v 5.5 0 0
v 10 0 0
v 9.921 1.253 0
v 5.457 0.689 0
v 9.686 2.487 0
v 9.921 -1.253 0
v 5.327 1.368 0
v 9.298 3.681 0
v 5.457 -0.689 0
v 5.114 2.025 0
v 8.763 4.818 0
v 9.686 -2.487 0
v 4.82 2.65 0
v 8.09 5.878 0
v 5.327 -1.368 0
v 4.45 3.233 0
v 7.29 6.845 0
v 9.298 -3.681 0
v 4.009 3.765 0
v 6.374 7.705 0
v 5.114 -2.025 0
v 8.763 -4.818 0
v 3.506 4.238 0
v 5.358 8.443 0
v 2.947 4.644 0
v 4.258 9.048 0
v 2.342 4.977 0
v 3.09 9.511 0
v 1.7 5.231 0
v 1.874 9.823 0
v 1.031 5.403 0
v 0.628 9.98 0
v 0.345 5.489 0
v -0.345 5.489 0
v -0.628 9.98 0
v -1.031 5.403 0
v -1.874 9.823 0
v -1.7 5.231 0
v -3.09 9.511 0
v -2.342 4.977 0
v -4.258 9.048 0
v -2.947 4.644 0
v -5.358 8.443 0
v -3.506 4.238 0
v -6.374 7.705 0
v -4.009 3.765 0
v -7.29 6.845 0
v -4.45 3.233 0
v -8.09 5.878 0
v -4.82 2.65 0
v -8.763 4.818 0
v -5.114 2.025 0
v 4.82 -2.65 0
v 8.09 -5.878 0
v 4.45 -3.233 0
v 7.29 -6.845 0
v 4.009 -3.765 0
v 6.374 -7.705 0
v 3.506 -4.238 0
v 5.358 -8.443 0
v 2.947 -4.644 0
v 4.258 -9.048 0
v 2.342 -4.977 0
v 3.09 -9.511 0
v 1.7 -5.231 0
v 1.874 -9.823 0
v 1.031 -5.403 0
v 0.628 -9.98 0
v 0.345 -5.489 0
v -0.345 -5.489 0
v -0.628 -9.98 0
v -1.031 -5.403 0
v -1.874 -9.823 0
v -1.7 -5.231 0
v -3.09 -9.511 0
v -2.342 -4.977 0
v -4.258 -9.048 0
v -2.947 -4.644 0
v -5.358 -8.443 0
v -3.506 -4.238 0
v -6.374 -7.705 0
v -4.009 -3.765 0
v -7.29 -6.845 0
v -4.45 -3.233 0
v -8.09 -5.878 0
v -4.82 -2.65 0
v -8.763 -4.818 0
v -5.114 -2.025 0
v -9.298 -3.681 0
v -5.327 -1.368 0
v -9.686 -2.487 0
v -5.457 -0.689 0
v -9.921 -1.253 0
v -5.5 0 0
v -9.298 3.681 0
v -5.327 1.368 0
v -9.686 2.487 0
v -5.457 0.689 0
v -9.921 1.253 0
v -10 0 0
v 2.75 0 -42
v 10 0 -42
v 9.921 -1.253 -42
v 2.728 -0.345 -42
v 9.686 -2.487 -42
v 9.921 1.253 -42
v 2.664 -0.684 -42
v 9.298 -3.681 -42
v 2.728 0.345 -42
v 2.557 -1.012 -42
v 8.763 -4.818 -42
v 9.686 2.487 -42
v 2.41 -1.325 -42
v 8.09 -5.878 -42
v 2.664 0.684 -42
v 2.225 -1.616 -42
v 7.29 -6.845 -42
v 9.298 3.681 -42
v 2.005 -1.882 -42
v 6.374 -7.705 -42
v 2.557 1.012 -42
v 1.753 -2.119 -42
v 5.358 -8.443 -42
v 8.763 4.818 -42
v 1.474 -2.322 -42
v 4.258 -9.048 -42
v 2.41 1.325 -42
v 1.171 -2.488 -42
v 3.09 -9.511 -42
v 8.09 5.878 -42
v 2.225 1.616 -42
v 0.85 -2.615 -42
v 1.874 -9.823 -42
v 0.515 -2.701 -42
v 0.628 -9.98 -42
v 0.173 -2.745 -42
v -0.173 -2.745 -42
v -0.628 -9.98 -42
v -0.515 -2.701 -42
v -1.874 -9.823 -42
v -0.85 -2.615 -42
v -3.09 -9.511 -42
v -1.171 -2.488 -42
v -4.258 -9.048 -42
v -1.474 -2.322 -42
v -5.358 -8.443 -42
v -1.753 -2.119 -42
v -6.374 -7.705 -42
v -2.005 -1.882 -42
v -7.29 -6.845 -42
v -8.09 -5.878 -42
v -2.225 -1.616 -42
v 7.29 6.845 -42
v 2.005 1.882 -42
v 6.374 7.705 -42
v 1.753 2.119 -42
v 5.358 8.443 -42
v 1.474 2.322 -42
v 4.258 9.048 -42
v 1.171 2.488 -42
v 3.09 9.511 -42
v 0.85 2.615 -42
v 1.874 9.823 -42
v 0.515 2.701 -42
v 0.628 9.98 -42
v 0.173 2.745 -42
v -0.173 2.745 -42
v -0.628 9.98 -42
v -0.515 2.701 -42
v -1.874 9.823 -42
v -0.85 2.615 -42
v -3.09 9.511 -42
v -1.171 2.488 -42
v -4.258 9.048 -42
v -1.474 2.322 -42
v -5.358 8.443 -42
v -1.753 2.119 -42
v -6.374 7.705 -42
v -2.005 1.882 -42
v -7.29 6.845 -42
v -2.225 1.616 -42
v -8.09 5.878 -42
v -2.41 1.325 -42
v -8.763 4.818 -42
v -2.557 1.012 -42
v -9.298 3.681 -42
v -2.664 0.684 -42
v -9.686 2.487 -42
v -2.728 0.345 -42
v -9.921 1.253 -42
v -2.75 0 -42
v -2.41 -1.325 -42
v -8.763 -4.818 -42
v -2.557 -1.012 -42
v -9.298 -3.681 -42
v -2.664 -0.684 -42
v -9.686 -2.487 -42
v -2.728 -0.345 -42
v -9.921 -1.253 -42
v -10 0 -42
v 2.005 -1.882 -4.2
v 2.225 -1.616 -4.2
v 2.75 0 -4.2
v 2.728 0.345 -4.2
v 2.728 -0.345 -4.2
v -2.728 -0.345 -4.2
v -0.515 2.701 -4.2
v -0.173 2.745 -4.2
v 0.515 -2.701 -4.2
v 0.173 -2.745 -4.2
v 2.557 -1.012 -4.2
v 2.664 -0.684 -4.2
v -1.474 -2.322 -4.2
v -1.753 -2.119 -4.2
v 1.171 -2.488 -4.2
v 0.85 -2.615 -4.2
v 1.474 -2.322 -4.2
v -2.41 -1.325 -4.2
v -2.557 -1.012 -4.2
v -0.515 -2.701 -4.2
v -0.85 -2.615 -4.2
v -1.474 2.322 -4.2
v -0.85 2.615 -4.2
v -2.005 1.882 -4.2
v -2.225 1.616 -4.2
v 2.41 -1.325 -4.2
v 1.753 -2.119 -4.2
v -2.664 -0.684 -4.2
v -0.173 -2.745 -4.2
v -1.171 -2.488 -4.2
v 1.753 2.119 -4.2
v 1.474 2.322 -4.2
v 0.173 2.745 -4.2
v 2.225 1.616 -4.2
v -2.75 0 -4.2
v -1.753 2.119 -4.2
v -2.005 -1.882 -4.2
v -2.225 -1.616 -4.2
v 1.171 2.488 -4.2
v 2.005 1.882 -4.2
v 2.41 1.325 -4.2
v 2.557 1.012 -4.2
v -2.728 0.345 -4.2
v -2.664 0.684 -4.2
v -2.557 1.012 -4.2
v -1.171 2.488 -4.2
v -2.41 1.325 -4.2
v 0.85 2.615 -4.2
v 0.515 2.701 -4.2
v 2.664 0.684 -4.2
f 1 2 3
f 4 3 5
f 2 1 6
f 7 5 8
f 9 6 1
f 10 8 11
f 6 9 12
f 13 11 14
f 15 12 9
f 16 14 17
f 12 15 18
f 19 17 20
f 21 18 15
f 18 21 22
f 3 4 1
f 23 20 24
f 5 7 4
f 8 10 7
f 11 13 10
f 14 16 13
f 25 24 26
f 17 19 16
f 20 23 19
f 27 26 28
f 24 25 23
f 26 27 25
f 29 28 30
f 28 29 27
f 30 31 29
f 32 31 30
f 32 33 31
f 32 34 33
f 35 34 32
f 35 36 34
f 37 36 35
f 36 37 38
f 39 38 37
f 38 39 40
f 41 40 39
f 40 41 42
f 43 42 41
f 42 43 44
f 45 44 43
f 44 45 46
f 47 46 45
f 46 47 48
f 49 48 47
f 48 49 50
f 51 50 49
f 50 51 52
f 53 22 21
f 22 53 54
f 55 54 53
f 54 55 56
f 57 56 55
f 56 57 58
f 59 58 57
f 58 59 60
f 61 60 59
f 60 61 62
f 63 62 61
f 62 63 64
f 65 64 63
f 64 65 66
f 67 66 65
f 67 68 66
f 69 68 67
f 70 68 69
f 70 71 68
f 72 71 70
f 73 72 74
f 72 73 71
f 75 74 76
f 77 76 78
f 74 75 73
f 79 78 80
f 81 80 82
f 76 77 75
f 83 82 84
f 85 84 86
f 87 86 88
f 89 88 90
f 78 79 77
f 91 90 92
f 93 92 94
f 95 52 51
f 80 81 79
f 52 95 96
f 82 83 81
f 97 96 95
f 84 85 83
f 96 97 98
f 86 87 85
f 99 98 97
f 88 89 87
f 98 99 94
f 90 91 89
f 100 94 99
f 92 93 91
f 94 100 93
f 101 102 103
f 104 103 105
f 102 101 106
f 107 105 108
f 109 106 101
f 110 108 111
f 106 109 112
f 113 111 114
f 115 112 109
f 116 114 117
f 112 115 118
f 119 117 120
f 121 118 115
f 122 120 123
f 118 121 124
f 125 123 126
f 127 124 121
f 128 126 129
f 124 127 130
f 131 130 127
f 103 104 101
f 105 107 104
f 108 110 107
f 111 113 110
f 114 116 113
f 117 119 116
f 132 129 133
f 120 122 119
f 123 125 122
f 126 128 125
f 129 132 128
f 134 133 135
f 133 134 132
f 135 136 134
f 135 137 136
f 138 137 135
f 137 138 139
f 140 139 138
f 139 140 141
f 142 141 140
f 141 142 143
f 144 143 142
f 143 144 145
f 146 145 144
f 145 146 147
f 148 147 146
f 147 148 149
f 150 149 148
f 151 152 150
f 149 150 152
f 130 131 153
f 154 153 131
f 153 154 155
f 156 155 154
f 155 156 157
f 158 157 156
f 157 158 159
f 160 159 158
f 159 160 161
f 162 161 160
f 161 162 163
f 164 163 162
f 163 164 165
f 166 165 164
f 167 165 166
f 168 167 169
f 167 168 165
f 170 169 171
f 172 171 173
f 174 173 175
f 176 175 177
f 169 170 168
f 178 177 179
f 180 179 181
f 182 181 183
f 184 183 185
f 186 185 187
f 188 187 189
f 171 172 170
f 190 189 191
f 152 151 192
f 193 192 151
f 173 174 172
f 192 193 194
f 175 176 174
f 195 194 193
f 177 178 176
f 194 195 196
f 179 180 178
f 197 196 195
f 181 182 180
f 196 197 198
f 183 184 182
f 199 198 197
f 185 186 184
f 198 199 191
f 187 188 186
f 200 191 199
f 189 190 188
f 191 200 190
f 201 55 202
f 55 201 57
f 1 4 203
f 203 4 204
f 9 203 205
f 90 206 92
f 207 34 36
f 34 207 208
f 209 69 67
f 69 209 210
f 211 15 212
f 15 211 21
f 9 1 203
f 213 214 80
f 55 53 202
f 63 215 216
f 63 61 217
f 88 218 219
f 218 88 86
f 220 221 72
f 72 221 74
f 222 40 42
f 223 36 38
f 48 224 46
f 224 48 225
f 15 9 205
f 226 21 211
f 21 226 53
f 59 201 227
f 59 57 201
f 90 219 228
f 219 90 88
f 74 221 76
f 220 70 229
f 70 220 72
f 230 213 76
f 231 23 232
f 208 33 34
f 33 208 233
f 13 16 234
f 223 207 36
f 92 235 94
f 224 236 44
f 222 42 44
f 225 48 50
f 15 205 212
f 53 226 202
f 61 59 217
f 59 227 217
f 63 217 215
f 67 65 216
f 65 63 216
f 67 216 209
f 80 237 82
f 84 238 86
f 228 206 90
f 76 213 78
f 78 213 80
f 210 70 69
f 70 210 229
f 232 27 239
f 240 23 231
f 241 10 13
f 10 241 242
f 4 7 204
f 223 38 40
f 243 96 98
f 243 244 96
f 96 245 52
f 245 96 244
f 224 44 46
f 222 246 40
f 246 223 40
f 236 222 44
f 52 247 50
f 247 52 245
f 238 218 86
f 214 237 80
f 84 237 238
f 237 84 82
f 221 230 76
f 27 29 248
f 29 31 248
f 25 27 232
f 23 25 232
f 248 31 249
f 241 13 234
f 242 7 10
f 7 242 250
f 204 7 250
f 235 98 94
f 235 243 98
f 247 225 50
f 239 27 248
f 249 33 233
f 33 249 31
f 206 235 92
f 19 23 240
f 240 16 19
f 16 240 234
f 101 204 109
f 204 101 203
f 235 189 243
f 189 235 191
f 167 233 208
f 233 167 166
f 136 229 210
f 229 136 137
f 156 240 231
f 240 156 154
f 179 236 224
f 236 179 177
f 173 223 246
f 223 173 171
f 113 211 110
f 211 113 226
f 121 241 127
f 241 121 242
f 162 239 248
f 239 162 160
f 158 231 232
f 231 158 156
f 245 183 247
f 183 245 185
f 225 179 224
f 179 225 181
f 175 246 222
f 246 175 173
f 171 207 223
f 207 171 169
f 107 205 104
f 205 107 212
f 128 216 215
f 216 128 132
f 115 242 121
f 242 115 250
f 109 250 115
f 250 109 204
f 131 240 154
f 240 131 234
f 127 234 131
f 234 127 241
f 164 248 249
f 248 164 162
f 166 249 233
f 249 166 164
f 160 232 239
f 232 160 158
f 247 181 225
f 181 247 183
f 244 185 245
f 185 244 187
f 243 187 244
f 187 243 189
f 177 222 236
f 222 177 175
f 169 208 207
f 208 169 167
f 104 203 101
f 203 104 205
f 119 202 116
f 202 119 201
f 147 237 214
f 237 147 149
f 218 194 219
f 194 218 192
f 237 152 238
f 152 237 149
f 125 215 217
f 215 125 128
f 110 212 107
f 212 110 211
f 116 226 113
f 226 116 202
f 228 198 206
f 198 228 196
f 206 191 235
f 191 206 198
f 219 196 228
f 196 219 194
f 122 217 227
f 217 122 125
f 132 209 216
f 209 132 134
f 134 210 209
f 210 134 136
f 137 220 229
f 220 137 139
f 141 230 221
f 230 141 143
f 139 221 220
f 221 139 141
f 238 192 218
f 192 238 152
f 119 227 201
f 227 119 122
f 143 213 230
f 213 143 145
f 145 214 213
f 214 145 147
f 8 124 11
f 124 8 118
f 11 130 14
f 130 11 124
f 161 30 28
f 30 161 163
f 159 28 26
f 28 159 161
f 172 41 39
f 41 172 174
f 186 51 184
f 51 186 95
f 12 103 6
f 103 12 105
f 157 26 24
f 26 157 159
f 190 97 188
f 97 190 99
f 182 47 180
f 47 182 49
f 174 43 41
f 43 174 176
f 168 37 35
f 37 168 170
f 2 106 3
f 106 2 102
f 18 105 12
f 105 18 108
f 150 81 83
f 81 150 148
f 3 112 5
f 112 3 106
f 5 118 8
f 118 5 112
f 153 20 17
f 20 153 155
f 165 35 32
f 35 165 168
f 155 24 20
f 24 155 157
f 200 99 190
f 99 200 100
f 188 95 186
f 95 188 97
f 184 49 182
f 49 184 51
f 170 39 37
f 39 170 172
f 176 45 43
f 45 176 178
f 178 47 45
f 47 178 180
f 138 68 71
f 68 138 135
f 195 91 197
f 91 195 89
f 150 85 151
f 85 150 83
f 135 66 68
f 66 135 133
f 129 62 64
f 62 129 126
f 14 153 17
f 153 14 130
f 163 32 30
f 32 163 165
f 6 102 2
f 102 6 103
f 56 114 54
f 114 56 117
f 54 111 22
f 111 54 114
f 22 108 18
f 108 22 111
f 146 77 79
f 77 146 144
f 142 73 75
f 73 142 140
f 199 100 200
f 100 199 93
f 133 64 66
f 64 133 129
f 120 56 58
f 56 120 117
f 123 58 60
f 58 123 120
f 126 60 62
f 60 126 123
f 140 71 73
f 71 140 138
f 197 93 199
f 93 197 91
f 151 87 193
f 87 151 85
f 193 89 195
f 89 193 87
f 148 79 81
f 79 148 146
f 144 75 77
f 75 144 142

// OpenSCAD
$fn = 50;


difference() {
	union() {
		translate(v = [0, 0, -42.0000000000]) {
			cylinder(h = 42, r = 10.0000000000);
		}
		cylinder(h = 0, r = 13.0000000000);
	}
	union() {
		translate(v = [0, 0, 0]) {
			rotate(a = [0, 0, 0]) {
				difference() {
					union() {
						#translate(v = [0, 0, -42.0000000000]) {
							cylinder(h = 42, r = 2.2500000000);
						}
						#translate(v = [0, 0, -4.2000000000]) {
							cylinder(h = 4.2000000000, r = 10.0000000000, r1 = 2.7500000000, r2 = 5.5000000000);
						}
						#translate(v = [0, 0, -42.0000000000]) {
							cylinder(h = 42, r = 2.7500000000);
						}
						#translate(v = [0, 0, -42.0000000000]) {
							cylinder(h = 42, r = 2.2500000000);
						}
					}
					union();
				}
			}
		}
	}
}
